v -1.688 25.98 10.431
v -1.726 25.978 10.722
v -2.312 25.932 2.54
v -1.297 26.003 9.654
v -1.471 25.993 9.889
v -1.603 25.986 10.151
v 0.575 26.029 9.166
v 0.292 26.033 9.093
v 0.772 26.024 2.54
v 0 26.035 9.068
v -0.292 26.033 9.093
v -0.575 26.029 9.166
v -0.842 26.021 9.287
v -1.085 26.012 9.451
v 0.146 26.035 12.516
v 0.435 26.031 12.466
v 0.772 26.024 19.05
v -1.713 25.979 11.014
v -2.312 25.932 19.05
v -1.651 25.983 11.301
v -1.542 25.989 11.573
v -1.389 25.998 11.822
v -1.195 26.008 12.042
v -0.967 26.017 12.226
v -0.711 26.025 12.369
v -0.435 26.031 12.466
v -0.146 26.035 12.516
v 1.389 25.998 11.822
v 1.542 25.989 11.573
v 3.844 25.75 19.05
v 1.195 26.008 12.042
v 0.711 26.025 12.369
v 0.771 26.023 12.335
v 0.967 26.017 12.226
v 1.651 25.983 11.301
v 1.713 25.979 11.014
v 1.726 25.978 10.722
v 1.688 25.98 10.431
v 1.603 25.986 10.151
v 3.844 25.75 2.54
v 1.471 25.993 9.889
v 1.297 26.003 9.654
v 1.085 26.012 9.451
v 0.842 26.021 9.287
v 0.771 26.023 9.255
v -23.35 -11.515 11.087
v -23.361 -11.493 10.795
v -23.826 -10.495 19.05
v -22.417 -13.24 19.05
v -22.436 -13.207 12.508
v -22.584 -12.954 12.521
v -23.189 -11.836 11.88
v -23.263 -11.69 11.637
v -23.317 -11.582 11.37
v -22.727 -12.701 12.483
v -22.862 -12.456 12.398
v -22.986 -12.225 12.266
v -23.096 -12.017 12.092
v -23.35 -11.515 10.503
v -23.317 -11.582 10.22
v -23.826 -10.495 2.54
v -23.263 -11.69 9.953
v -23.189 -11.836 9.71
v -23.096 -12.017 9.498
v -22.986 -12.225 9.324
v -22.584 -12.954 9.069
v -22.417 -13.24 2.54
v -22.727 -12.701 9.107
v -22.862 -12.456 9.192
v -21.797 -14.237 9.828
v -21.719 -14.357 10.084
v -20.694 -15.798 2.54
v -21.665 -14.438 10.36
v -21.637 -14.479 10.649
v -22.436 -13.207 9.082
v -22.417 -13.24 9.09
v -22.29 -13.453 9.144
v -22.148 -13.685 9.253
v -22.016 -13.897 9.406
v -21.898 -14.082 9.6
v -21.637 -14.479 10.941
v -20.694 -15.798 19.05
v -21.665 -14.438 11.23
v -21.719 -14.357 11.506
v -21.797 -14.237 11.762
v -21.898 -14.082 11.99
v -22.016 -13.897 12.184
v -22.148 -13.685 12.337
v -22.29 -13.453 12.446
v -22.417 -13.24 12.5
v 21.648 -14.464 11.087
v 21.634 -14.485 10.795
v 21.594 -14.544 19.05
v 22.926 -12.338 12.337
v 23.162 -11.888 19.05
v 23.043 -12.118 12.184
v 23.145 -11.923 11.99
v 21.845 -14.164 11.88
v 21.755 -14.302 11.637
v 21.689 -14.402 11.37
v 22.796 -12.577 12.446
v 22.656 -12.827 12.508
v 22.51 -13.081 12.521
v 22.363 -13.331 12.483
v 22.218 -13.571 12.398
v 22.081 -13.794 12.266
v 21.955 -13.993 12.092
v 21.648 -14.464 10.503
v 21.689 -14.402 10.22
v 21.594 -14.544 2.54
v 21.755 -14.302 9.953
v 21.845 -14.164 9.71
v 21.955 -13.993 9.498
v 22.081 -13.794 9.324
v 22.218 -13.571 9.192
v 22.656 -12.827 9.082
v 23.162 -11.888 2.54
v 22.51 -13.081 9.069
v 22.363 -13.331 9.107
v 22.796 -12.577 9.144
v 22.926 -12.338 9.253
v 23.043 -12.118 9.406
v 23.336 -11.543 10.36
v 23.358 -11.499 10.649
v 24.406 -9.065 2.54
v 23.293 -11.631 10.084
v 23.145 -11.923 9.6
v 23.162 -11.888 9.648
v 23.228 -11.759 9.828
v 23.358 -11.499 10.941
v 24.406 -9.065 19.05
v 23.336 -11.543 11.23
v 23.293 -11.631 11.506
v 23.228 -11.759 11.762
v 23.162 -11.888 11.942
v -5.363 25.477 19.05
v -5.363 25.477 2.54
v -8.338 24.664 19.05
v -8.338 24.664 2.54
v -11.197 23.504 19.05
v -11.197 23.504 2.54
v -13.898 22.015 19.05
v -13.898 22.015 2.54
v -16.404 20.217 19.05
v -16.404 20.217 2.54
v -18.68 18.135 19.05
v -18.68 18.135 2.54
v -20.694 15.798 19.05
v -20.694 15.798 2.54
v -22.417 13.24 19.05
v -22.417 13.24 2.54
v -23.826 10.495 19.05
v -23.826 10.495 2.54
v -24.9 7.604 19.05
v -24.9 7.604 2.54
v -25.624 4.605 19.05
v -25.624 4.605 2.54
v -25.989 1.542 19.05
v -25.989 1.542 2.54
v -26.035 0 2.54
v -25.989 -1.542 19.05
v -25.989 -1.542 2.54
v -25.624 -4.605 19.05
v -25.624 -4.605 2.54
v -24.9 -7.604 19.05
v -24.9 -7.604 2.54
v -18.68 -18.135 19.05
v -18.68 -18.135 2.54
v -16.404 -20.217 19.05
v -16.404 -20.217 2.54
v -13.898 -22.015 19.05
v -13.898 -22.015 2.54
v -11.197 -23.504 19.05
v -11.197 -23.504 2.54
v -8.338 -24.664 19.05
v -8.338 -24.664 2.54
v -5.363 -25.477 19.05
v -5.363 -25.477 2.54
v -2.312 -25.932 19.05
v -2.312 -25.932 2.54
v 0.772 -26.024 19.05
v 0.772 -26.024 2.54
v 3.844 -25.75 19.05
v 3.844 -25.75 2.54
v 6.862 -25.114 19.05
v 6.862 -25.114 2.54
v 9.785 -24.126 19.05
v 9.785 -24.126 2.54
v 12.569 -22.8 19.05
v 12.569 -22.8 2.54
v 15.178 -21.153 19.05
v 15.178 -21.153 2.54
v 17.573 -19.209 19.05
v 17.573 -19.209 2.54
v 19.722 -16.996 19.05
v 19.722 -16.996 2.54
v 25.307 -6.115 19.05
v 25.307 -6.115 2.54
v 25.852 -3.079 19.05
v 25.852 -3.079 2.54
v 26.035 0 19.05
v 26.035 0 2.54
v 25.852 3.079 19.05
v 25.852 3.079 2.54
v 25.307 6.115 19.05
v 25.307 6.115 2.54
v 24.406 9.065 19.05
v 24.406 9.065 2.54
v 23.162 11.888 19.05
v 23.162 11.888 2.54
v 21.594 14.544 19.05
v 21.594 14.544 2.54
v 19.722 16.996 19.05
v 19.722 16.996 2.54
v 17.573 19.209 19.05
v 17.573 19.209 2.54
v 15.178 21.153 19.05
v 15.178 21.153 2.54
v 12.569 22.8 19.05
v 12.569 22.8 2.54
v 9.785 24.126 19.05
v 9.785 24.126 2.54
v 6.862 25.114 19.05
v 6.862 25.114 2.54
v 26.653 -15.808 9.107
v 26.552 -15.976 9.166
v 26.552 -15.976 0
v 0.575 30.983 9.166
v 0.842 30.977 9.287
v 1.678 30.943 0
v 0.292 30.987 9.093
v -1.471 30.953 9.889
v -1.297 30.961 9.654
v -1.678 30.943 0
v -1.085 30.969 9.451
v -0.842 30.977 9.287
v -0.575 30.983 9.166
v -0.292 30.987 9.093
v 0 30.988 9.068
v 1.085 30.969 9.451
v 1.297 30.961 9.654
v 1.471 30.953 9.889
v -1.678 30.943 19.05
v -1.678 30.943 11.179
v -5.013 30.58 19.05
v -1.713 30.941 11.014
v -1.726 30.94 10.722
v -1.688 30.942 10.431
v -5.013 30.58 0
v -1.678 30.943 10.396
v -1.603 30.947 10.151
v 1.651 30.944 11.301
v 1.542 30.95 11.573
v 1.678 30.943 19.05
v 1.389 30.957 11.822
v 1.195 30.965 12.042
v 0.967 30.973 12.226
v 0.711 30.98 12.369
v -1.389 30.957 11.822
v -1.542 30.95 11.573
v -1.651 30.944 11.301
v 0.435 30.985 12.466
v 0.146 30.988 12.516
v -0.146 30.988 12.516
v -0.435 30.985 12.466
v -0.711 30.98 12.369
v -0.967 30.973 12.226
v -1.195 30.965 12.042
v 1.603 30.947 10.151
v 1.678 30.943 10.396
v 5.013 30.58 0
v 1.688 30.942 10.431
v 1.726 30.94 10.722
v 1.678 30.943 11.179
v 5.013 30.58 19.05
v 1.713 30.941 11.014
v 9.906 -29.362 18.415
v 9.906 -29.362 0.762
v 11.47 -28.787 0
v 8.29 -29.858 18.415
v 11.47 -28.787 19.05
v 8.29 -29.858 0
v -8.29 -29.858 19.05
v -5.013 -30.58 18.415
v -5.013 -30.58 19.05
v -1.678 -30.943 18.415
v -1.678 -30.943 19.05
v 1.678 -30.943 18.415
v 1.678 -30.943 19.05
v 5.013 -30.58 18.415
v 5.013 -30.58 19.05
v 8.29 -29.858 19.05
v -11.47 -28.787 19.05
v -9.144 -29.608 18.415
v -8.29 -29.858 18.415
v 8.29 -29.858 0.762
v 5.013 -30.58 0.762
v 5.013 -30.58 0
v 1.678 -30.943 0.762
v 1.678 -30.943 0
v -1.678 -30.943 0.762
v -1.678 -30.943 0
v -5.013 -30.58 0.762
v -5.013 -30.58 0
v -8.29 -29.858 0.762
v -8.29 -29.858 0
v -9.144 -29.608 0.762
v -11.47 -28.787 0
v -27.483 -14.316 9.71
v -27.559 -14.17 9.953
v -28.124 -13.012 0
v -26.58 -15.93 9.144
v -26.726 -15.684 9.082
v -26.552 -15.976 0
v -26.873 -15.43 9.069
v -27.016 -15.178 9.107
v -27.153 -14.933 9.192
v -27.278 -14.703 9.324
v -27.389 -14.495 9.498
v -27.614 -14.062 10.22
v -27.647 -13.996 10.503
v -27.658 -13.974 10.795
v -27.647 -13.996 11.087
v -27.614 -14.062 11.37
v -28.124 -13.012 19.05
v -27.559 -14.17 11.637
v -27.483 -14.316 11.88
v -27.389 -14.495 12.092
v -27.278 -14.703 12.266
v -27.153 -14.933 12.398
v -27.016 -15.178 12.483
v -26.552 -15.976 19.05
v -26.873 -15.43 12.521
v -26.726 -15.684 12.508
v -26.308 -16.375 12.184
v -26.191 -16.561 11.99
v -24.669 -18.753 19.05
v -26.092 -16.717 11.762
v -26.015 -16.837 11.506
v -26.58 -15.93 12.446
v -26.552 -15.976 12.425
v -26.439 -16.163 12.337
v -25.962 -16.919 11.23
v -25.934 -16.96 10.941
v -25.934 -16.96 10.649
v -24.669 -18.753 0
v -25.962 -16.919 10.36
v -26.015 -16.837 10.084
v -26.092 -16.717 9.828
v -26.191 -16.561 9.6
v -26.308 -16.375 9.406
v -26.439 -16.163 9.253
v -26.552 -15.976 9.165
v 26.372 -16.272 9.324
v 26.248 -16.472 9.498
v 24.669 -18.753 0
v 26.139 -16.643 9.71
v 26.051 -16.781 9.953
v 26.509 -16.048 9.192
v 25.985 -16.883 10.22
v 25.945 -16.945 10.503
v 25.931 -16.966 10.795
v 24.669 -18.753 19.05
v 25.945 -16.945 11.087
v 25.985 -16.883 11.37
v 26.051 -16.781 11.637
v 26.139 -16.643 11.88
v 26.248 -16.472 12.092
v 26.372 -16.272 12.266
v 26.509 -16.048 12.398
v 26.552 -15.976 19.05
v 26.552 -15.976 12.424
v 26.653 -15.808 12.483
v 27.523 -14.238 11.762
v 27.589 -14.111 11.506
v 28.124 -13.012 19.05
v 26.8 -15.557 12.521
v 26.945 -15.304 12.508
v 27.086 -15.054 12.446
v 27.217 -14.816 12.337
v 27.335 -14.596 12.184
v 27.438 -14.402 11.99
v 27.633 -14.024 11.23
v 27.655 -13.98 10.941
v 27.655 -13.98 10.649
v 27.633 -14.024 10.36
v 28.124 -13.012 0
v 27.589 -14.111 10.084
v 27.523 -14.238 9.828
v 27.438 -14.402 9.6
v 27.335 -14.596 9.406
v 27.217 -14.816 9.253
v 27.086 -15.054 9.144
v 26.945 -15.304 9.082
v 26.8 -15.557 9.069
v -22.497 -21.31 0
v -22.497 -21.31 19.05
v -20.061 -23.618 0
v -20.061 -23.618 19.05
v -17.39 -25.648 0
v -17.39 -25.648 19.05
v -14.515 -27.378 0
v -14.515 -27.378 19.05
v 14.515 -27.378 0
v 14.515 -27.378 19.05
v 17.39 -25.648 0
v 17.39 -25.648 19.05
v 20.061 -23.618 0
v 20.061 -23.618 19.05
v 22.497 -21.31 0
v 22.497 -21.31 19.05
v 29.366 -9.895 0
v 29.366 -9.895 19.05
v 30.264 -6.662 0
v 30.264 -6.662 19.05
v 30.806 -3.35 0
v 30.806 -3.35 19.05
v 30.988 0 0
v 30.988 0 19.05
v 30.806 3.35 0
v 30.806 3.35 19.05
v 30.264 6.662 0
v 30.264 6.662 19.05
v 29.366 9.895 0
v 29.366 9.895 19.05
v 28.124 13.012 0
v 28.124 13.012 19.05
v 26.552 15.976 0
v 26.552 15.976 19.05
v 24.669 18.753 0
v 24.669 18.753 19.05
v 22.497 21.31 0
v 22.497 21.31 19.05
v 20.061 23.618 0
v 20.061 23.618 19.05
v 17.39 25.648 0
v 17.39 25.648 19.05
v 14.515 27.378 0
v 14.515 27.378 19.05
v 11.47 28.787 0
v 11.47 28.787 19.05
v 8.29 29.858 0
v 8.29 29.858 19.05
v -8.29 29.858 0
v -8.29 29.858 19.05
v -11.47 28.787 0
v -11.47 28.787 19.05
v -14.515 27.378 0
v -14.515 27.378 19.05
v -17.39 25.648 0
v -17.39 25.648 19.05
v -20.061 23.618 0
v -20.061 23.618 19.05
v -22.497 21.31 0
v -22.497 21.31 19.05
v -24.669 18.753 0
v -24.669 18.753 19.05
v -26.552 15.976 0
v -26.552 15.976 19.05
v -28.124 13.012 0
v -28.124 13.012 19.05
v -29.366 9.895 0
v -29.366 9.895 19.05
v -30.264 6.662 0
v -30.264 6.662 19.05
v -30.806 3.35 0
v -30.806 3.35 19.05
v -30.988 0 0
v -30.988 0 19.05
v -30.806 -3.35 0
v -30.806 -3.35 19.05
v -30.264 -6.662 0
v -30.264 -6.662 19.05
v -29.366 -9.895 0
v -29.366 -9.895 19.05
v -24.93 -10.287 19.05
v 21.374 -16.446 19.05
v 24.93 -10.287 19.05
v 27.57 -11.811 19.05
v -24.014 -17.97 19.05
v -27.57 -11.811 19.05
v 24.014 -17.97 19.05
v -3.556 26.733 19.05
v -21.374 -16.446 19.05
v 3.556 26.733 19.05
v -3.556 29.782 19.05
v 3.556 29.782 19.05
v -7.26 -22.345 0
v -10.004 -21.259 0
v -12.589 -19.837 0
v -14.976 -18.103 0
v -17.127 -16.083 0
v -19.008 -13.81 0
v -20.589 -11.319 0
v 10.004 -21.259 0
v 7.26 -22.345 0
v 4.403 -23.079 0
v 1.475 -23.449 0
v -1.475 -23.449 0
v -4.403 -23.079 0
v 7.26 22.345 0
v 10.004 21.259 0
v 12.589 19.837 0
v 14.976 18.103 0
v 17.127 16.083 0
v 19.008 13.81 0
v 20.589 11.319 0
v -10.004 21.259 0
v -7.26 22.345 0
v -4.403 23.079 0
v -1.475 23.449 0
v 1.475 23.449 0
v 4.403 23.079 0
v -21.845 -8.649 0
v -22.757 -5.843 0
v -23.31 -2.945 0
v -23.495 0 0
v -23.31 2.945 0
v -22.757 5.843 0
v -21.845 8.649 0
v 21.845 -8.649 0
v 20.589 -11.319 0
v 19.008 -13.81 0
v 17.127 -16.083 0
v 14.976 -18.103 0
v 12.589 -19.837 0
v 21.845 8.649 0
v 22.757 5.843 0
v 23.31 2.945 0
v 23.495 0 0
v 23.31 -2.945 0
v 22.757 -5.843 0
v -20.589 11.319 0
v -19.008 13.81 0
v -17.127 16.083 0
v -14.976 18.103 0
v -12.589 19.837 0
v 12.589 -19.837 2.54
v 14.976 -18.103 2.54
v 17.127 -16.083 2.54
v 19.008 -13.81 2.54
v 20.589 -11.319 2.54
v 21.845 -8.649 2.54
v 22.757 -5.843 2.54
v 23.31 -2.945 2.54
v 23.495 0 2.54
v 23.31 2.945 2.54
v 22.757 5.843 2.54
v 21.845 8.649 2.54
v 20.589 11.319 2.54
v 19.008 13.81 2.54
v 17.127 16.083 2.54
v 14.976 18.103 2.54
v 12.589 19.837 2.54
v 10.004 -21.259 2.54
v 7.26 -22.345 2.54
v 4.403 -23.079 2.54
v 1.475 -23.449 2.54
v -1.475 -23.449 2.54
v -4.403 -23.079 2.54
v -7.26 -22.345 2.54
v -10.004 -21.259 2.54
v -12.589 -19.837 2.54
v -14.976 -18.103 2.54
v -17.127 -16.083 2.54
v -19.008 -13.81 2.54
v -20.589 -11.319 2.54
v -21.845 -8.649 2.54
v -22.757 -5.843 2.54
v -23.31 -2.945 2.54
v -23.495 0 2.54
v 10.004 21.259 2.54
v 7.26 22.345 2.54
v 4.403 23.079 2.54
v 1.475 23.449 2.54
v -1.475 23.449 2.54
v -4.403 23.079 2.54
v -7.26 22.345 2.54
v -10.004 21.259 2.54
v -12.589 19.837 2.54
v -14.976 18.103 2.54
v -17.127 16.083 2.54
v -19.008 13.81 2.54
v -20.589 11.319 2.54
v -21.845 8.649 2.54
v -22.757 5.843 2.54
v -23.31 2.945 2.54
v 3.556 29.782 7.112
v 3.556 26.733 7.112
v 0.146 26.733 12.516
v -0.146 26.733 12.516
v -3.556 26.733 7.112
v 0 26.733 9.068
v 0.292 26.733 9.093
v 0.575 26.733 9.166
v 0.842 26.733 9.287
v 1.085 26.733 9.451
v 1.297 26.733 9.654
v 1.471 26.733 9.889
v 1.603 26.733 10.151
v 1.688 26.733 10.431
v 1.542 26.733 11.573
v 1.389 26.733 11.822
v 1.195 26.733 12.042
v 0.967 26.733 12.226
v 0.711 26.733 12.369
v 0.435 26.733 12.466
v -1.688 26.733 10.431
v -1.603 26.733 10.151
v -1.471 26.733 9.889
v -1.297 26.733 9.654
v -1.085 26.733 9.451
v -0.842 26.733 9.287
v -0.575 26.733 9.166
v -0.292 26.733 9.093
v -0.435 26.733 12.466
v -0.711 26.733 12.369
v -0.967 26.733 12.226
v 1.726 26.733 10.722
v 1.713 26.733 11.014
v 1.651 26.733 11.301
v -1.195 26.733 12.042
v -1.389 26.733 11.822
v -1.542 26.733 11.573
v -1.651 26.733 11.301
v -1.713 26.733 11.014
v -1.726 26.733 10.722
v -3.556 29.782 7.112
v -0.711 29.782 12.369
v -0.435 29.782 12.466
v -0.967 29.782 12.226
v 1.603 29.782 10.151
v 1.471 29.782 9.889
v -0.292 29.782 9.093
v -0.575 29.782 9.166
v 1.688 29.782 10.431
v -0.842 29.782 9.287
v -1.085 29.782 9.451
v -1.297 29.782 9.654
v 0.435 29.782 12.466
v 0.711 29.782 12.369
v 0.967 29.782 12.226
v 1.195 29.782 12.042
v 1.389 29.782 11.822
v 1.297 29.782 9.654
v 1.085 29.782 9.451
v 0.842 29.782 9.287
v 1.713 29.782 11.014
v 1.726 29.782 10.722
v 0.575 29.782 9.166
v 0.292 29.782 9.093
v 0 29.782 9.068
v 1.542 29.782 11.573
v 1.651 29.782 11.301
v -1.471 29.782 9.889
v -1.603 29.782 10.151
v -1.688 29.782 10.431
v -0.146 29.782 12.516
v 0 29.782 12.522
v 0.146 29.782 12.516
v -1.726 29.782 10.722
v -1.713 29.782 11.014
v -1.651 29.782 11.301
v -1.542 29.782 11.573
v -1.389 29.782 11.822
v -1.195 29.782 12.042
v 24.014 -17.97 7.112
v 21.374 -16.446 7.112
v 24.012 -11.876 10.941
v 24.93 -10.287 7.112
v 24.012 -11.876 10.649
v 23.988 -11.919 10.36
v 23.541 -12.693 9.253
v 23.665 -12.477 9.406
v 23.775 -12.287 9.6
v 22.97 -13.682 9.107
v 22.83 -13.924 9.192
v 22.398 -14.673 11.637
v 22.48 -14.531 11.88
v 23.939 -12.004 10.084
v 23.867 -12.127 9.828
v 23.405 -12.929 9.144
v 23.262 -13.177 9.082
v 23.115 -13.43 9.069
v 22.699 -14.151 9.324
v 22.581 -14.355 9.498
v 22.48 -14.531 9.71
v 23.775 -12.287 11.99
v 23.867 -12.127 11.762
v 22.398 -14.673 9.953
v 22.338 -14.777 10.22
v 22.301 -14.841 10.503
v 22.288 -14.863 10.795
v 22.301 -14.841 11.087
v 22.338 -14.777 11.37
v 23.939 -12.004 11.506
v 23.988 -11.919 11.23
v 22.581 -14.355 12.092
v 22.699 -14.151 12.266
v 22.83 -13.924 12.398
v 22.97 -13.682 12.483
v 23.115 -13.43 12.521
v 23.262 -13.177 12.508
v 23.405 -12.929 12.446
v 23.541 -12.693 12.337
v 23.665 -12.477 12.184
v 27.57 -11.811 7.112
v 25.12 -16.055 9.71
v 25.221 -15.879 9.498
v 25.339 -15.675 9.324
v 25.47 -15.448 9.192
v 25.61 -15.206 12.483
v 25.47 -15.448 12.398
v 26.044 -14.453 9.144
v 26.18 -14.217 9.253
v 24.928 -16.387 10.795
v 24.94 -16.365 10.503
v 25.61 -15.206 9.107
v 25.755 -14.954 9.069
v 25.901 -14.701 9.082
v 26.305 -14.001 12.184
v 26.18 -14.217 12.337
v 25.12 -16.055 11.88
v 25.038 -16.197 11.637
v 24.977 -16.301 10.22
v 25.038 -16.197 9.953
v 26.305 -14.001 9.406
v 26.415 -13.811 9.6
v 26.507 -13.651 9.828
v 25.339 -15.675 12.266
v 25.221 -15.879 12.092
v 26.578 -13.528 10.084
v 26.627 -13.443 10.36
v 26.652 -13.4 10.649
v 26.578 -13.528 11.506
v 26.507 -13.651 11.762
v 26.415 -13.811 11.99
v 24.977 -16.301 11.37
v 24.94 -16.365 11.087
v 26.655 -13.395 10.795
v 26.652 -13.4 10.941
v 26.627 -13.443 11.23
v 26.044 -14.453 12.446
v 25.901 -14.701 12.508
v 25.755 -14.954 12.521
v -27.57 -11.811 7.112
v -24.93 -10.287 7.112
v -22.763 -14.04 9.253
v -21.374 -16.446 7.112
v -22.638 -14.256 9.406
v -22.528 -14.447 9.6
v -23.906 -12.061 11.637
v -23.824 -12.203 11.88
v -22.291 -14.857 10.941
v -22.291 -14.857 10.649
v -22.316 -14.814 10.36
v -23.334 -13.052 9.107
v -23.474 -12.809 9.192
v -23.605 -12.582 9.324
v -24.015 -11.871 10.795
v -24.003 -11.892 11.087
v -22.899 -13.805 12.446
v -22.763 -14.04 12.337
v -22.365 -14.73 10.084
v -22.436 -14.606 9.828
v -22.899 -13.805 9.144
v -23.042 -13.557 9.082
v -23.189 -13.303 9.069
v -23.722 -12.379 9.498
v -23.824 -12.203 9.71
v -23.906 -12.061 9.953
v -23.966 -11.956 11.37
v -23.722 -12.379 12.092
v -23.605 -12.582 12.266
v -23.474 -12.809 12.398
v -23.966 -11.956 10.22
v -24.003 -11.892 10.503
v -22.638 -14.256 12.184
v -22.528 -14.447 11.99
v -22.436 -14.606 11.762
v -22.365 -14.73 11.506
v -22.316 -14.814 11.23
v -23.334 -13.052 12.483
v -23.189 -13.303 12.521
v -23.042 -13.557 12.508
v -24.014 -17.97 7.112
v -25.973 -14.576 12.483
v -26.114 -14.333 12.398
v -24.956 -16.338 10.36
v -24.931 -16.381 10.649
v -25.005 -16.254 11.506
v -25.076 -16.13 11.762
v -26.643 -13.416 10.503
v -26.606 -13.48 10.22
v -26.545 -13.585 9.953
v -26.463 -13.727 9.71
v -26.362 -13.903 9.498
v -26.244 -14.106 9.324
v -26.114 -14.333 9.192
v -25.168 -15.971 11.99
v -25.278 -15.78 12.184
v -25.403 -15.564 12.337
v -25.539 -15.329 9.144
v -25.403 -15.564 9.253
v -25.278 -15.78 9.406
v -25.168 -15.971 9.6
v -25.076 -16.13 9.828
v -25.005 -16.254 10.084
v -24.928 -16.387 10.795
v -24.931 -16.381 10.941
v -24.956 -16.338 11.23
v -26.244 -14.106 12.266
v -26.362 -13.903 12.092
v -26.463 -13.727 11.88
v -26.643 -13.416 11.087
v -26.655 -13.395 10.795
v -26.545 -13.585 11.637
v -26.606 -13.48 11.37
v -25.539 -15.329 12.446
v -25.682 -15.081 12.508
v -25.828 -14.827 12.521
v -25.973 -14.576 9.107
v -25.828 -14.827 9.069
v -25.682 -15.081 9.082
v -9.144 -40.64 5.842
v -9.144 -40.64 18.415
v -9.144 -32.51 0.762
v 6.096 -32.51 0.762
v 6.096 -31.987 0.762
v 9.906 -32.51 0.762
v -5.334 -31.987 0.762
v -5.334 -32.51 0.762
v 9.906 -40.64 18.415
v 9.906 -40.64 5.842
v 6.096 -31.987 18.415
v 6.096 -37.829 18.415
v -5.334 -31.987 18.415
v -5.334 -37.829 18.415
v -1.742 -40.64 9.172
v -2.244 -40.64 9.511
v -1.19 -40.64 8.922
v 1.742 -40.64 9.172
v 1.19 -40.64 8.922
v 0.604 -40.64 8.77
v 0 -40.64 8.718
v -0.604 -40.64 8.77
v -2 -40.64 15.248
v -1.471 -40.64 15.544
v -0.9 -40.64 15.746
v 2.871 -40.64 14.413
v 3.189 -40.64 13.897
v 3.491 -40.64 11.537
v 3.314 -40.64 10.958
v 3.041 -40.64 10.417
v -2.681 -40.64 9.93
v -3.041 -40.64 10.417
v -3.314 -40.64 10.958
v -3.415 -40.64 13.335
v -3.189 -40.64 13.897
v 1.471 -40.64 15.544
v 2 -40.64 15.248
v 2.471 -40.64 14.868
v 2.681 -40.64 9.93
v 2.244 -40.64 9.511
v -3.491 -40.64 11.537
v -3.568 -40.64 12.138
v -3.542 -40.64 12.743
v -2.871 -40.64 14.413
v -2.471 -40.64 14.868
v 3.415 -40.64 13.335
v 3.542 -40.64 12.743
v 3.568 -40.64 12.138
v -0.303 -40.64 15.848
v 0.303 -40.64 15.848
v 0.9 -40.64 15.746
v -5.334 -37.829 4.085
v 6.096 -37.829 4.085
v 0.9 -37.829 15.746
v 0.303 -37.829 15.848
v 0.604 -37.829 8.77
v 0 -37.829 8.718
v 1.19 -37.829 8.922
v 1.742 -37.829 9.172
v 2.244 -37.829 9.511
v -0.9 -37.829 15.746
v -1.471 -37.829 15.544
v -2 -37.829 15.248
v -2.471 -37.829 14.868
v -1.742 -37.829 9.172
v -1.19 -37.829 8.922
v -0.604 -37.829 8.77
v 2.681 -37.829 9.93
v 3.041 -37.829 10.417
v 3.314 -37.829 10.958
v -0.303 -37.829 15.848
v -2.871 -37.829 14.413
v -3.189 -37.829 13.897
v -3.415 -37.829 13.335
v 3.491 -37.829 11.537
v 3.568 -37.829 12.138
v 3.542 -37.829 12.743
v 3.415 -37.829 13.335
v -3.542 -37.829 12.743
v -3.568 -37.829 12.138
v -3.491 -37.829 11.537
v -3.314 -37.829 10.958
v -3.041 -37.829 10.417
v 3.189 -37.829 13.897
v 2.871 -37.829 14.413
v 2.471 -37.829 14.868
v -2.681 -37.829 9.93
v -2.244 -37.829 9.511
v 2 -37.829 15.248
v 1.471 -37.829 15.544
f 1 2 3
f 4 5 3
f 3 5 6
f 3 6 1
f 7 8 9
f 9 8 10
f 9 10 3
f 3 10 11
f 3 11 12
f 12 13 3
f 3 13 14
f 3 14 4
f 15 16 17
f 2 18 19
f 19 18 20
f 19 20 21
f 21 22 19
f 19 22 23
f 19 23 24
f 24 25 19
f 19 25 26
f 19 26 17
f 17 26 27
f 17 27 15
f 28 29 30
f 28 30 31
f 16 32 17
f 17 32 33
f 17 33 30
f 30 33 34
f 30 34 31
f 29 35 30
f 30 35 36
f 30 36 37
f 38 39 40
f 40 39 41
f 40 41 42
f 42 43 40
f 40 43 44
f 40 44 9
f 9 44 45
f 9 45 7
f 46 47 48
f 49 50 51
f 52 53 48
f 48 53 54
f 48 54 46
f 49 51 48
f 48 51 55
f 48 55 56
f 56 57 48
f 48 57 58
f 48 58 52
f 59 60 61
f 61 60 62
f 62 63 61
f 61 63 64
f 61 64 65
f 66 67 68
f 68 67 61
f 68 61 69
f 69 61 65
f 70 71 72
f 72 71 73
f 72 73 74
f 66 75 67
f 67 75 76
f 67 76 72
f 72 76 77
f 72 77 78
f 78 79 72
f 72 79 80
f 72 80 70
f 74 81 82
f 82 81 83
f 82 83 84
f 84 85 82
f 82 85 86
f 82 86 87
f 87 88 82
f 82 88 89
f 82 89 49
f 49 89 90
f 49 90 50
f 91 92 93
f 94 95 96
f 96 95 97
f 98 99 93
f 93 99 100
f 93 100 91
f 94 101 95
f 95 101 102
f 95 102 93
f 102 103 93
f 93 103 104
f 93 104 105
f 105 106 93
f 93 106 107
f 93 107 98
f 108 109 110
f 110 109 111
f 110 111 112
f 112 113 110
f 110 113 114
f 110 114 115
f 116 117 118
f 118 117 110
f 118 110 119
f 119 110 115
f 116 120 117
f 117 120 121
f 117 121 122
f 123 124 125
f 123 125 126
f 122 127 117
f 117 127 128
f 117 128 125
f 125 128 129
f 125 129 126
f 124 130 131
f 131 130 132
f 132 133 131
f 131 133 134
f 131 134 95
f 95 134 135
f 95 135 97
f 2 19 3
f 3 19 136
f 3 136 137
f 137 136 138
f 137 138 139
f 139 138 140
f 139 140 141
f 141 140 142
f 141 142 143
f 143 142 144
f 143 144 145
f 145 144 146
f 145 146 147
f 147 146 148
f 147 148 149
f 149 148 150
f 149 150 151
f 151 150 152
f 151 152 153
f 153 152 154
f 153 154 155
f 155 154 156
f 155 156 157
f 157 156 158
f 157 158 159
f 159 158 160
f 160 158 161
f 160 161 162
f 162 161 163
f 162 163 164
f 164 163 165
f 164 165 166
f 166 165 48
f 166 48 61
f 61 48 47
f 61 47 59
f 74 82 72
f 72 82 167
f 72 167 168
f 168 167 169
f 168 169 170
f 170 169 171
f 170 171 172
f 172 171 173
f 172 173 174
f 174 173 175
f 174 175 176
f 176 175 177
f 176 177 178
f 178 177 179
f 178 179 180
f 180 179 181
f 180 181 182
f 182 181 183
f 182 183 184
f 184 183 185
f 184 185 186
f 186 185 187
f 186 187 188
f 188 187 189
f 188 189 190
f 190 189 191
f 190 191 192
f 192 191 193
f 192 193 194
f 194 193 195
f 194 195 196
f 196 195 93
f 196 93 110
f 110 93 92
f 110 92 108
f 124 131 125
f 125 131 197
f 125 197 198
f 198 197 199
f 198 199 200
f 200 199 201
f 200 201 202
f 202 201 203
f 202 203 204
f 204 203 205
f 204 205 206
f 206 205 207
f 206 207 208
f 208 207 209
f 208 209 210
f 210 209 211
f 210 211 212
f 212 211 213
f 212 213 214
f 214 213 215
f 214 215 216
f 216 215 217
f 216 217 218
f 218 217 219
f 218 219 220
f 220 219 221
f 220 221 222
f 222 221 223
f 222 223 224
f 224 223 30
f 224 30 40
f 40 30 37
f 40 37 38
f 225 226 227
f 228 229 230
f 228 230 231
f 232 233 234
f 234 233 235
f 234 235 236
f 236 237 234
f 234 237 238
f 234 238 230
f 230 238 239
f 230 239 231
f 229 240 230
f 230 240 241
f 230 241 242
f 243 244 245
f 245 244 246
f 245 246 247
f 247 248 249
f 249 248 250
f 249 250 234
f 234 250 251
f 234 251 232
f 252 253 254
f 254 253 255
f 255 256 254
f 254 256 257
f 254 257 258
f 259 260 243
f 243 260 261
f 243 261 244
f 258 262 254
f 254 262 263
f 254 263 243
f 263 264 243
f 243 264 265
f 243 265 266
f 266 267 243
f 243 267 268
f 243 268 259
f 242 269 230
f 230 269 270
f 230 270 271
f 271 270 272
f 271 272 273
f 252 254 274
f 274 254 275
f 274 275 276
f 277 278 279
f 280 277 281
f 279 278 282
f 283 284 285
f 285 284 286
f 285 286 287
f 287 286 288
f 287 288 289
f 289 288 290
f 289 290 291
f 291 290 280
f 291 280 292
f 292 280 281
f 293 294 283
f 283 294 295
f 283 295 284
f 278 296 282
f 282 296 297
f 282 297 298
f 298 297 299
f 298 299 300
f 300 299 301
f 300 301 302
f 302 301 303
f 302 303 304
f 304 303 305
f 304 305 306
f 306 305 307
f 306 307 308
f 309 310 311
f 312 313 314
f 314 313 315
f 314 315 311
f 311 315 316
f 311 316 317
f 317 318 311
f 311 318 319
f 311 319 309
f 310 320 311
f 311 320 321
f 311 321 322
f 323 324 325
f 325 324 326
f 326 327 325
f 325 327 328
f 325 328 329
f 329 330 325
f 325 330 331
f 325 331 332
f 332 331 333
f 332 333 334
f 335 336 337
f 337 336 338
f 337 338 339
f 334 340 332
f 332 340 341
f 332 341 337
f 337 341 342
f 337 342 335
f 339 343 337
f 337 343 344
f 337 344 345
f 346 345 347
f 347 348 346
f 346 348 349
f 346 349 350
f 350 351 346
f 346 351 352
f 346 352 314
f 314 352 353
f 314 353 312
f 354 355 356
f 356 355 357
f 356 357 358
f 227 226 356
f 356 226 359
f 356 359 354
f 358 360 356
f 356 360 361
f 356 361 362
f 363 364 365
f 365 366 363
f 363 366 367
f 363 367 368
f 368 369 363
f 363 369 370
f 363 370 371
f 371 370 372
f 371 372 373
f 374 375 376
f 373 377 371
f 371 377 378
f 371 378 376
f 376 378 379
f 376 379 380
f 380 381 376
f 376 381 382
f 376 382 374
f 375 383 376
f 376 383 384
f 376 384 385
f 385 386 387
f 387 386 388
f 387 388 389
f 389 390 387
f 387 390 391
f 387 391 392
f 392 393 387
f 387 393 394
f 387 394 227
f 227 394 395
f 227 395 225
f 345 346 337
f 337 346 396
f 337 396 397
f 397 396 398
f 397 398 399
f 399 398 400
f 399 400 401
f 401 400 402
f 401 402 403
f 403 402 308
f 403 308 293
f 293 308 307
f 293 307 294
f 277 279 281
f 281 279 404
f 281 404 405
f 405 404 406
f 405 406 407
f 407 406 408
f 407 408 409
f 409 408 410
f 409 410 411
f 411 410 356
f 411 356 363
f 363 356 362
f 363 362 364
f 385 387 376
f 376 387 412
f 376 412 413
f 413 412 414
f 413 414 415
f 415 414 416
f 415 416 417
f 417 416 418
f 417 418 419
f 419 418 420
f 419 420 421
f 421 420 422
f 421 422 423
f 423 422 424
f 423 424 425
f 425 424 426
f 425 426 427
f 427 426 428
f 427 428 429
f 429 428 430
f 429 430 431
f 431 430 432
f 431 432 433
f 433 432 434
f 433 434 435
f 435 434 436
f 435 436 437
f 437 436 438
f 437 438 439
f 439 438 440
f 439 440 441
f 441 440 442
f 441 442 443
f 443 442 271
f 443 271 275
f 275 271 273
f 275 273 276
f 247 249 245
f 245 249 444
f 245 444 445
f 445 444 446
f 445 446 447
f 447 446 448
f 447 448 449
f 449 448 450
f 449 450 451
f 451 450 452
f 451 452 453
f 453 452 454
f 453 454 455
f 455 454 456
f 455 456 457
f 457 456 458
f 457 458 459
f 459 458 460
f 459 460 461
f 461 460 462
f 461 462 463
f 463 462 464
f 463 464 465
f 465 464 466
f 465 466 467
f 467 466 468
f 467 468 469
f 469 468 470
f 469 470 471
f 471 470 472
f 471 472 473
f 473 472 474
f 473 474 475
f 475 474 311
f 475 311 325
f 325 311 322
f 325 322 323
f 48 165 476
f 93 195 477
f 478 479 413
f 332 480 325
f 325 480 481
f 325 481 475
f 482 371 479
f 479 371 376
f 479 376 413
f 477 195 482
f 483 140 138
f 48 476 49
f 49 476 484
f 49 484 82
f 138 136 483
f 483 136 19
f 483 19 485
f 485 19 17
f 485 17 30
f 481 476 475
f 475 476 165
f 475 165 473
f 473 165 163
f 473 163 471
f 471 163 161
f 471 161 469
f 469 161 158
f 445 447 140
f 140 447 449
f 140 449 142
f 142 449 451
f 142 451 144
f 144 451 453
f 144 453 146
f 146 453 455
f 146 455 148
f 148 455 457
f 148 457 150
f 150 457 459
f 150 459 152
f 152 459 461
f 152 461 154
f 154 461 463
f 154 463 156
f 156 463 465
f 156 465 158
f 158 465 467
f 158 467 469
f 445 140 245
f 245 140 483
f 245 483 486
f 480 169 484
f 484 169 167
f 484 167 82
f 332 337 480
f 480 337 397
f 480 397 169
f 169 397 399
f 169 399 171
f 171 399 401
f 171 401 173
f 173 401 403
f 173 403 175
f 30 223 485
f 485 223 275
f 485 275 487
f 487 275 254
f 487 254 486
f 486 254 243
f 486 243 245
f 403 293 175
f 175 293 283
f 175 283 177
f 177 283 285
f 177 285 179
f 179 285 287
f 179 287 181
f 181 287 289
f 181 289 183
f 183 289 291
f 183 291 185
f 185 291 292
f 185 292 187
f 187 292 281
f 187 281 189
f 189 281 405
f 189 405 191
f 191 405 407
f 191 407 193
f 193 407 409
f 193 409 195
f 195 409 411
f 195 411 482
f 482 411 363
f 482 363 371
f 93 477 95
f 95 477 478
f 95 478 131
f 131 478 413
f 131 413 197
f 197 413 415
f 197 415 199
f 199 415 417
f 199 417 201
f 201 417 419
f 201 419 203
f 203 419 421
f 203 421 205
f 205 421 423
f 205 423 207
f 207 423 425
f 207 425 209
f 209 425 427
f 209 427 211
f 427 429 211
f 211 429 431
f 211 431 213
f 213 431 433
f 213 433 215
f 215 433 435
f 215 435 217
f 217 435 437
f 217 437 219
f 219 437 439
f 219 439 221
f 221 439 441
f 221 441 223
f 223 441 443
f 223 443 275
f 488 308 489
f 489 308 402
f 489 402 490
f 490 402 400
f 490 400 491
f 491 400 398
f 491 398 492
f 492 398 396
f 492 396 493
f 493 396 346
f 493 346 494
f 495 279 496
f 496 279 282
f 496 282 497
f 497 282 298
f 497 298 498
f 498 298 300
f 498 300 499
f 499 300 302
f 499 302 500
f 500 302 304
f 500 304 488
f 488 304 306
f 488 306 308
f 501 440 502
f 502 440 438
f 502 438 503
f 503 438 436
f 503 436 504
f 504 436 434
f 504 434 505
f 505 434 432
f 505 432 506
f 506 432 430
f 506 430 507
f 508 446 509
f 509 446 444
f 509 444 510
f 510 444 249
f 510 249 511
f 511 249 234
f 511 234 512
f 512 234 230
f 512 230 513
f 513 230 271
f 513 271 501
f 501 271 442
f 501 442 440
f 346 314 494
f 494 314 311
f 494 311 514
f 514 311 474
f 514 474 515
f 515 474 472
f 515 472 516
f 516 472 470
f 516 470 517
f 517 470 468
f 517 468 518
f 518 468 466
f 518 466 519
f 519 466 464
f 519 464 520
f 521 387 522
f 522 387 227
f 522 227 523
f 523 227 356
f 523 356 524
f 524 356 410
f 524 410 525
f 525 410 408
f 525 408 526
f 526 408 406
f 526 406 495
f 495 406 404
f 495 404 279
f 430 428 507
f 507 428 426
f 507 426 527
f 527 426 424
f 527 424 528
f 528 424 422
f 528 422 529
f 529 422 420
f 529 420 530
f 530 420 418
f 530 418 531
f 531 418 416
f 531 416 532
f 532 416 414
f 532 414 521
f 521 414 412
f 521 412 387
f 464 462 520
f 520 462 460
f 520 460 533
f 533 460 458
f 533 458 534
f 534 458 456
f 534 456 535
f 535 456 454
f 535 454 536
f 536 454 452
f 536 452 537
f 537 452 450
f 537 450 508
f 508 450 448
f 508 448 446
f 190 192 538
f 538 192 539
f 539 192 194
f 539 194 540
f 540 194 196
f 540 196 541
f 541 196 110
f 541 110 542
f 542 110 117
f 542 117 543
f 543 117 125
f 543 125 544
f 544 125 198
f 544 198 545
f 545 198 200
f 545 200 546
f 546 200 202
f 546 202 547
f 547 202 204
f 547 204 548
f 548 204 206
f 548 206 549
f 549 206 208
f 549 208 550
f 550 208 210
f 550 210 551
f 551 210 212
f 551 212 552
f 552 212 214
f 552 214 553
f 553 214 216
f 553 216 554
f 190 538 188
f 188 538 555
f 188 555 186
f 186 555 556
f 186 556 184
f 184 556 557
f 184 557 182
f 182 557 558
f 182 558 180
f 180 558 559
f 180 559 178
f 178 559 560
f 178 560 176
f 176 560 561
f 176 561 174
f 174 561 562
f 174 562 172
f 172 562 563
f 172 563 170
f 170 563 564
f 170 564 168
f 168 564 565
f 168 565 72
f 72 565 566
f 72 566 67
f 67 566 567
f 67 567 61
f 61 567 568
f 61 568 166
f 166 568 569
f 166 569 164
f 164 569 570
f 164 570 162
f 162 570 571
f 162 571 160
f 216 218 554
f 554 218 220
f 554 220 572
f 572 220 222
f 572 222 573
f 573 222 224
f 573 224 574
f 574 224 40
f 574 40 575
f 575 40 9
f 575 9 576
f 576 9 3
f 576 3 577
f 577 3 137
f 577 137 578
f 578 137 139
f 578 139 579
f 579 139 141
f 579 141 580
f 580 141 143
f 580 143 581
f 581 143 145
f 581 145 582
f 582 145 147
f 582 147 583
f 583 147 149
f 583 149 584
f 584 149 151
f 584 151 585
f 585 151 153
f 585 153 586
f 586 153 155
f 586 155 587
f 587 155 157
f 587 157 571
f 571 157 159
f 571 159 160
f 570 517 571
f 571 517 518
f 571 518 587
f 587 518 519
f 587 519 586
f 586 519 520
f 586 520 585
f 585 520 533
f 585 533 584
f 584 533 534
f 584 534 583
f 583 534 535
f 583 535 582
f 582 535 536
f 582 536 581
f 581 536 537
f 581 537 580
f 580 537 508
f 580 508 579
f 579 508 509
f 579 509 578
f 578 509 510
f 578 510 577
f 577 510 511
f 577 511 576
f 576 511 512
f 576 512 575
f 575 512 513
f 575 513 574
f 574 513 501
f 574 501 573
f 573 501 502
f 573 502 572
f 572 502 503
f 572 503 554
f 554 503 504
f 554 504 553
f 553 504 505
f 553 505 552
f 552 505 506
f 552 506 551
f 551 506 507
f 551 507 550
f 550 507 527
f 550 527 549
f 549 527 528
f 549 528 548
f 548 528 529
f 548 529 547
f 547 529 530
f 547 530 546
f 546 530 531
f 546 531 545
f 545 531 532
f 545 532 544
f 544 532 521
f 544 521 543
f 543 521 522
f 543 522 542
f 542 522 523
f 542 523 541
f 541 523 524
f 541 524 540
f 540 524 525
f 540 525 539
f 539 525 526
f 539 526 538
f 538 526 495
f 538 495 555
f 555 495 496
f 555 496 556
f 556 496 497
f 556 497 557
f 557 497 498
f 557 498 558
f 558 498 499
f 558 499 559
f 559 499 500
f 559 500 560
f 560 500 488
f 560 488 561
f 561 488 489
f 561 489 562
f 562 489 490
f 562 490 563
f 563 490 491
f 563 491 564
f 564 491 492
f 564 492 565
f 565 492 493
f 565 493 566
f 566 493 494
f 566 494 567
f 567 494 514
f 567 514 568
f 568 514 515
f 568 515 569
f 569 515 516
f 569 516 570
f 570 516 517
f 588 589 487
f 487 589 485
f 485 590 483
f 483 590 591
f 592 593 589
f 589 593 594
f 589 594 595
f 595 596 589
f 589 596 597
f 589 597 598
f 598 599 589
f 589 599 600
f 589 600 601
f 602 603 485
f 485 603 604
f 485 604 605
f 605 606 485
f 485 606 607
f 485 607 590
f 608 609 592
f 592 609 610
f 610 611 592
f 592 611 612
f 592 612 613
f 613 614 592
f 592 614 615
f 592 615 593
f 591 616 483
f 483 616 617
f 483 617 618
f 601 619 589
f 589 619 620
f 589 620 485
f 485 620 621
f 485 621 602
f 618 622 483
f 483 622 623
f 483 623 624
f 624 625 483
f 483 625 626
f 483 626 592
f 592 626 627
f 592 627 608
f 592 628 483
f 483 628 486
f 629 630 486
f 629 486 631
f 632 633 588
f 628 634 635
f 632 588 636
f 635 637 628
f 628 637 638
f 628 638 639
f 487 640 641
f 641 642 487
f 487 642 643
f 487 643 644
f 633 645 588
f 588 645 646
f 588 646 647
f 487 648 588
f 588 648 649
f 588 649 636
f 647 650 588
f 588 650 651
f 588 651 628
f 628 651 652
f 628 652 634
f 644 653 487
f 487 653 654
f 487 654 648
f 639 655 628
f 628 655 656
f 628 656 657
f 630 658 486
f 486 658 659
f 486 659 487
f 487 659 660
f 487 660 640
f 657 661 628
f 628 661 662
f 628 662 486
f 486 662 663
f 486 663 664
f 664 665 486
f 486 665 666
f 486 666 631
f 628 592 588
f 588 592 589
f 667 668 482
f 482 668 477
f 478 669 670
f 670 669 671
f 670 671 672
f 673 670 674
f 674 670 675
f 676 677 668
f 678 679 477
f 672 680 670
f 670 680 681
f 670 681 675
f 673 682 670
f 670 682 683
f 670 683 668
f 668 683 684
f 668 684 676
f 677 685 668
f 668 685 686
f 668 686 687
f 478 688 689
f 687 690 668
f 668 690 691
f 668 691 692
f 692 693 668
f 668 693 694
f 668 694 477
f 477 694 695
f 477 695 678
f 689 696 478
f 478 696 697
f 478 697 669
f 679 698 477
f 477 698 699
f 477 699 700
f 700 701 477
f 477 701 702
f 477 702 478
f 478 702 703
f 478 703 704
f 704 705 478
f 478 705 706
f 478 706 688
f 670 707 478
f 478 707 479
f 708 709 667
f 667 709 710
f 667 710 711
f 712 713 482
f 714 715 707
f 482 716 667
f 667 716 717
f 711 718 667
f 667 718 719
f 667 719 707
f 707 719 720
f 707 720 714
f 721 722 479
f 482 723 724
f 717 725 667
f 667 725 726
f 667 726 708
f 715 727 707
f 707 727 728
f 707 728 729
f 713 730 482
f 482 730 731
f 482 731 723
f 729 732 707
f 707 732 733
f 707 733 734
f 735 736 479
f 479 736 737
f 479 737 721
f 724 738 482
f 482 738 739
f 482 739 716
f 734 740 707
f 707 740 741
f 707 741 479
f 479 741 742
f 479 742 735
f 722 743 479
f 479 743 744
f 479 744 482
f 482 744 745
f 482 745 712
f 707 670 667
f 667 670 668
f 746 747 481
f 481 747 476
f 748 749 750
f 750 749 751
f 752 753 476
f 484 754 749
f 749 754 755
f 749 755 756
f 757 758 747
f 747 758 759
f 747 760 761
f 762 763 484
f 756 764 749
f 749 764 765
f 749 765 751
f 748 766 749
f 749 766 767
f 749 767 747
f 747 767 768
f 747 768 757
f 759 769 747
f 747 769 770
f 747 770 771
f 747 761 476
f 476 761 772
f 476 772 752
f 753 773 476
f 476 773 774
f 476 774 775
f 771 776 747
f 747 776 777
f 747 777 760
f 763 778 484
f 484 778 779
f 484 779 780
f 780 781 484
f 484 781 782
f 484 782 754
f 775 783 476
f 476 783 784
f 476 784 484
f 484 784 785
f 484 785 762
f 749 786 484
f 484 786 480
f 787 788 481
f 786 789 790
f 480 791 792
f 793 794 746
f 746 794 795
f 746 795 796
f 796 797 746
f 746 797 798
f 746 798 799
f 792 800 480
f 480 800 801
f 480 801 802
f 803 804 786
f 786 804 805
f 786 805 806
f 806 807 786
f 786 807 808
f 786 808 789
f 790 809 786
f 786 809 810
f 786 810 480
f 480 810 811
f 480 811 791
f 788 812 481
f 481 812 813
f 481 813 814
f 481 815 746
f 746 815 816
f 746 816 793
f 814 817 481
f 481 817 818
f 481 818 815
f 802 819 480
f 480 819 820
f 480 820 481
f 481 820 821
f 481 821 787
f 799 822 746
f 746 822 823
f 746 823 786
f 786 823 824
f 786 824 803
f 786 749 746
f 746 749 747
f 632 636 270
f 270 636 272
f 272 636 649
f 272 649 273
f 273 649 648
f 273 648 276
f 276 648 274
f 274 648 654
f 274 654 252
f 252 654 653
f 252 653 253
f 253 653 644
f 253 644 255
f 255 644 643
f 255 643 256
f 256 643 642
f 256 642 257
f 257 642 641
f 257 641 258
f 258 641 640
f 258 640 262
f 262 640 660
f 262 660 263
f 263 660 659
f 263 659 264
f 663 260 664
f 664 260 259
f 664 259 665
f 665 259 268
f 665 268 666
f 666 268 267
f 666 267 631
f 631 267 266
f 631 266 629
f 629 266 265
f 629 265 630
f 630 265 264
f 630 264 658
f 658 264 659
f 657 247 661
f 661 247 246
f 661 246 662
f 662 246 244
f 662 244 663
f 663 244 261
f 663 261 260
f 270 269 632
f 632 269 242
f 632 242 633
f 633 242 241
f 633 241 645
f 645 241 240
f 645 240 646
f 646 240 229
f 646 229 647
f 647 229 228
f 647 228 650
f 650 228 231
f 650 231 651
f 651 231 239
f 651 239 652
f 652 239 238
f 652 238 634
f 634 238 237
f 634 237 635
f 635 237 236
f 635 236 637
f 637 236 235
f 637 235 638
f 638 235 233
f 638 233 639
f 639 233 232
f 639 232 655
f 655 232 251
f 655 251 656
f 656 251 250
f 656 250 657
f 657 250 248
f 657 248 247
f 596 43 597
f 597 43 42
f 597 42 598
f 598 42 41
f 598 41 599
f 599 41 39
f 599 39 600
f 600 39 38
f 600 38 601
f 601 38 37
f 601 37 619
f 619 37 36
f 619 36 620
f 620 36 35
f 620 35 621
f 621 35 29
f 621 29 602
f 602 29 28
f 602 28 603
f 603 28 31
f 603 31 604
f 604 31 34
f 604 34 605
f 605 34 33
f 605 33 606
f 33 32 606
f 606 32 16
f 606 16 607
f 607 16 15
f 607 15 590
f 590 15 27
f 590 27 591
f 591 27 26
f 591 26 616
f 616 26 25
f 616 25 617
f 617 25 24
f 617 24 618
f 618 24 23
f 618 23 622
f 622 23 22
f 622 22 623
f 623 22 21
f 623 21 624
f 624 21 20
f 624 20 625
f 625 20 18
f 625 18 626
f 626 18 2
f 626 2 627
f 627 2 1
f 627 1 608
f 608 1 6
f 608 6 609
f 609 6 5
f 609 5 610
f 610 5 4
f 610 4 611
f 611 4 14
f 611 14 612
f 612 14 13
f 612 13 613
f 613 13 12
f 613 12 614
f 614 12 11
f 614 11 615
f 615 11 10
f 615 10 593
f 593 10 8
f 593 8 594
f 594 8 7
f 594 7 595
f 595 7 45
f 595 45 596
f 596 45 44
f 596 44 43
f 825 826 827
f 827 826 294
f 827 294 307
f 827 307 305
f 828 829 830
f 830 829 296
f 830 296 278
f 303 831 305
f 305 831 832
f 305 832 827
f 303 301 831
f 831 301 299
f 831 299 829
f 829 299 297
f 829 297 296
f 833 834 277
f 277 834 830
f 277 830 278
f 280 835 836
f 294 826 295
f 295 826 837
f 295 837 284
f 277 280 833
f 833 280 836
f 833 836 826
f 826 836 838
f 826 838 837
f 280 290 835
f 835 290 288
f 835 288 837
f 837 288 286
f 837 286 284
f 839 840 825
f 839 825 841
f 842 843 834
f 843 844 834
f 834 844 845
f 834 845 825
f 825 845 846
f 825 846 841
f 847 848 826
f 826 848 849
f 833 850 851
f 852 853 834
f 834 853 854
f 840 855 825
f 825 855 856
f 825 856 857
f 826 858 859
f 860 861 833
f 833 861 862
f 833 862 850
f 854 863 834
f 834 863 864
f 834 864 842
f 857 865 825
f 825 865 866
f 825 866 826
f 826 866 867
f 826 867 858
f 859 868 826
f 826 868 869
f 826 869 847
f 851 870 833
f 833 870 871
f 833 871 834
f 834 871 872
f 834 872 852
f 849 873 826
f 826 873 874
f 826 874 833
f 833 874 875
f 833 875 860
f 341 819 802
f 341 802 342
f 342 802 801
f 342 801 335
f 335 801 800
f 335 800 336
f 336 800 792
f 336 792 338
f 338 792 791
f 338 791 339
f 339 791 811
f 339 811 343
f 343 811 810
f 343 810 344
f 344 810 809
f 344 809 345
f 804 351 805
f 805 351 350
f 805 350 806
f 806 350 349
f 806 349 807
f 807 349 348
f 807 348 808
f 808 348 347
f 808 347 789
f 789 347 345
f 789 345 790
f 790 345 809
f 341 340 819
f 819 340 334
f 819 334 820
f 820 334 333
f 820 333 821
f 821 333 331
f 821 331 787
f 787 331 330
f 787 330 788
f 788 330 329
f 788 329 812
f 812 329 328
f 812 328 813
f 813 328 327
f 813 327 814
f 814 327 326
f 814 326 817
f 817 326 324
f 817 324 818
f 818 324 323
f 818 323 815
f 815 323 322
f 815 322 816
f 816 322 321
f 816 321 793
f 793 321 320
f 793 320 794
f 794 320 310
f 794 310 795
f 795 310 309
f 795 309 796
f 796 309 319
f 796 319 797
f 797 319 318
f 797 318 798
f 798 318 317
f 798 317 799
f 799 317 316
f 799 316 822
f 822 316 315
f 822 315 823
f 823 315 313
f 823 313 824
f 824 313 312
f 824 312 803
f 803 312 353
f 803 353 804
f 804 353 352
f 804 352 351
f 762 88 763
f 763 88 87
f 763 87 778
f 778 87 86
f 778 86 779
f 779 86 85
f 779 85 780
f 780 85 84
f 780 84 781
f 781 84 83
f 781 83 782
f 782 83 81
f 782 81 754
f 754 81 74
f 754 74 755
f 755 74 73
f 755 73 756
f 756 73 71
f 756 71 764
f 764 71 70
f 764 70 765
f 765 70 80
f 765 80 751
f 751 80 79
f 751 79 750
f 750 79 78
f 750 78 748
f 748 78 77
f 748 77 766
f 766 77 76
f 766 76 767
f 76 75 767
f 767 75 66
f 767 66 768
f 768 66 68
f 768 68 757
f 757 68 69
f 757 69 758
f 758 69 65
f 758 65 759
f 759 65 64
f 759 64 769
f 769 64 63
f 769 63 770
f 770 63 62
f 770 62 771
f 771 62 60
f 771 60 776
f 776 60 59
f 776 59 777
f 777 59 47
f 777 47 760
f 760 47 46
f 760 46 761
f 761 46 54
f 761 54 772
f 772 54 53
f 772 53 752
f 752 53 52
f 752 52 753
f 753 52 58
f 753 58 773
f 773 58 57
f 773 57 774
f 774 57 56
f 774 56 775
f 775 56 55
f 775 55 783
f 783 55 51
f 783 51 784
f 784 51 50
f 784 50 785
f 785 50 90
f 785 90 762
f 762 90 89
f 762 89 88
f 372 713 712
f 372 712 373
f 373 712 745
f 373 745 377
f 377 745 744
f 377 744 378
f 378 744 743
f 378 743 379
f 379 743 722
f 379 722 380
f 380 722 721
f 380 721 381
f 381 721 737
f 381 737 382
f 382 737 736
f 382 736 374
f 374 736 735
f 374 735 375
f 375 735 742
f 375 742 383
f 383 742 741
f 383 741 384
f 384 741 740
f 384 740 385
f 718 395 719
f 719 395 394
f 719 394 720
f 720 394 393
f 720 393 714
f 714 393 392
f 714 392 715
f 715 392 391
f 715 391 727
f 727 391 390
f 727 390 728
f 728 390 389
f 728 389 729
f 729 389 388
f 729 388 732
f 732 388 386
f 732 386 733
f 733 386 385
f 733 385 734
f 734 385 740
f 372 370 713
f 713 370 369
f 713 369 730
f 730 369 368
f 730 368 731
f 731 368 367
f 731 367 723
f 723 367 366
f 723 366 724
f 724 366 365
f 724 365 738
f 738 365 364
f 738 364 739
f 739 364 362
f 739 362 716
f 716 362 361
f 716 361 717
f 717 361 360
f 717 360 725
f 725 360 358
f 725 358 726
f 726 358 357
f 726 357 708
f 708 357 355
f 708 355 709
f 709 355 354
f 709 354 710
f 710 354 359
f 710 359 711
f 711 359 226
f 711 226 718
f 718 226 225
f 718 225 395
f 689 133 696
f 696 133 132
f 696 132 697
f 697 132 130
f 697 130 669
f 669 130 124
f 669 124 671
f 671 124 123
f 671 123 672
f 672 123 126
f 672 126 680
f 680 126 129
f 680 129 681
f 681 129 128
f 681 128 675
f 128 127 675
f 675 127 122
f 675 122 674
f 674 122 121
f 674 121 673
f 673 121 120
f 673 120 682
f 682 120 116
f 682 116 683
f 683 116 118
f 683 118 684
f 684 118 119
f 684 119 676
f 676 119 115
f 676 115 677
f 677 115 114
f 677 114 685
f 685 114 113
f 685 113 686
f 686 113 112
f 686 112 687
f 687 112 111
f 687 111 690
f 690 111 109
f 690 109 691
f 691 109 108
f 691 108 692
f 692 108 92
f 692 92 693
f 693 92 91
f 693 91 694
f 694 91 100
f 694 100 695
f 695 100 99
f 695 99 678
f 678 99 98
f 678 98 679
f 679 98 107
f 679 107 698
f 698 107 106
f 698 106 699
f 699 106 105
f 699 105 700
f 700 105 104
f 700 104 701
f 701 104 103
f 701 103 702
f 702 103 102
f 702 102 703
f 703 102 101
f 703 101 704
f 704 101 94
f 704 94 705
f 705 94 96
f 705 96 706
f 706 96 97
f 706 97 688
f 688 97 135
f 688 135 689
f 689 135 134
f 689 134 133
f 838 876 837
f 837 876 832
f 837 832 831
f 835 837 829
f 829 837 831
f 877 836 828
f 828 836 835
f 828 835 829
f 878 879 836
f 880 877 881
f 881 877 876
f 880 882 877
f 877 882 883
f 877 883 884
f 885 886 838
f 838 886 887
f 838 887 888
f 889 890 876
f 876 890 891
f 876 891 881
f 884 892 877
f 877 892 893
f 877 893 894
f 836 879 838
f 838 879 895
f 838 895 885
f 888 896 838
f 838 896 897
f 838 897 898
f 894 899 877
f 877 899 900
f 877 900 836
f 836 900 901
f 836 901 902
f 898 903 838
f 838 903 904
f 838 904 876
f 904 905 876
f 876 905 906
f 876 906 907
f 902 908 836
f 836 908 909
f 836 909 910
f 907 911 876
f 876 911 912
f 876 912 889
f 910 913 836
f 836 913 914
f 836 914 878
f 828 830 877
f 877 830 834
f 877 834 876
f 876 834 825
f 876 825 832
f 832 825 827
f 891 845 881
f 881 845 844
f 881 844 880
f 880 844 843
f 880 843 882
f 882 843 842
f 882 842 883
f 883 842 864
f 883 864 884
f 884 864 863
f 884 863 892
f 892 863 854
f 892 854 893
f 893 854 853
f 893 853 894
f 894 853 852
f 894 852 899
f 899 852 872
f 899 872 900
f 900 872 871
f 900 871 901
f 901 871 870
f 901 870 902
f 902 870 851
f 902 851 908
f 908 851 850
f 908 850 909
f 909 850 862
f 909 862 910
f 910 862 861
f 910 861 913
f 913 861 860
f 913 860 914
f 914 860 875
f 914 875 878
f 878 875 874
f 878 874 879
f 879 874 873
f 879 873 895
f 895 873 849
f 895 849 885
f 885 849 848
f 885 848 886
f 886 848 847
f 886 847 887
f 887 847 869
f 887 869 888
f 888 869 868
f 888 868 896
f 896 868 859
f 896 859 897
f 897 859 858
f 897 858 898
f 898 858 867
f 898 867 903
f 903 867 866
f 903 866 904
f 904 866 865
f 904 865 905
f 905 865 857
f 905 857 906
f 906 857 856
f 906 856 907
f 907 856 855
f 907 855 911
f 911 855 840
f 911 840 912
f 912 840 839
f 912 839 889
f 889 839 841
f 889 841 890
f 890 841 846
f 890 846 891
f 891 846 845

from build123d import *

# Parameters (mm, degrees)
SKETCH1_R                   = 30.988
BOSS_EXTRUDE1_DEPTH         = 19.05
SKETCH2_R                   = 26.035
CUT_EXTRUDE1_DEPTH          = 48.785089599
BOSS_EXTRUDE2_START         = -2.54
SKETCH4_R                   = 26.035
SKETCH4_R_2                 = 23.495
BOSS_EXTRUDE2_DEPTH         = 2.54
SKETCH11_W                  = 7.112
SKETCH11_H                  = 3.048
CUT_EXTRUDE3_DEPTH          = 11.938
CIRPATTERN2_COUNT           = 3
F_4_CLEARANCE_HOLE1_D       = 3.4544
F_4_CLEARANCE_HOLE1_DEPTH   = 34.456395212
SKETCH15_W                  = 19.05
SKETCH15_H                  = 17.653
BOSS_EXTRUDE3_DEPTH         = 12.7
CIRPATTERN3_COUNT           = 3
SKETCH16_W                  = 11.43
SKETCH16_H                  = 5.842
CUT_EXTRUDE4_DEPTH          = 55.322904735
CHAMFER2_SIZE               = 8.129699408
CHAMFER2_SIZE_2             = 5.08
F_1_4_CLEARANCE_HOLE1_D     = 7.14248
F_1_4_CLEARANCE_HOLE1_DEPTH = 2.811307748


with BuildPart() as part:
    # Sketch1 → Boss-Extrude1 (new body)
    with BuildSketch(Plane.XY):
        with Locations(Location((0, 0, 0), (0, 0, 180))):
            Circle(SKETCH1_R)
    extrude(amount=BOSS_EXTRUDE1_DEPTH)

    # Sketch2 → Cut-Extrude1 (cut, through all)
    with BuildSketch(Plane.XY.offset(19.05)):
        Circle(SKETCH2_R)
    extrude(amount=-CUT_EXTRUDE1_DEPTH, mode=Mode.SUBTRACT)

    # Sketch4 → Boss-Extrude2 (add)
    with BuildSketch(Plane(origin=(0, 0, 0), x_dir=(-1, 0, 0), z_dir=(0, 0, -1)).offset(BOSS_EXTRUDE2_START)):
        with Locations(Location((0, 0, 0), (0, 0, 180))):
            Circle(SKETCH4_R)
        Circle(SKETCH4_R_2, mode=Mode.SUBTRACT)
    extrude(amount=BOSS_EXTRUDE2_DEPTH)

    # Sketch11 → Cut-Extrude3 (cut)
    with BuildSketch(Plane.XY.offset(19.05)):
        with Locations((0, 28.2575)):
            Rectangle(SKETCH11_W, SKETCH11_H)
    cut_extrude3 = extrude(amount=-CUT_EXTRUDE3_DEPTH, mode=Mode.SUBTRACT)

    # CirPattern2: Cut-Extrude3 ×3 about axis
    cirpattern2_axis = Axis((0, 0, 0), (0, 0, 1))
    for i in range(1, CIRPATTERN2_COUNT):
        add(cut_extrude3.rotate(cirpattern2_axis, i * 360 / CIRPATTERN2_COUNT), mode=Mode.SUBTRACT)

    # #4 Clearance Hole1
    with Locations(Plane.XZ.offset(-12.7)):
        with Locations((0, 10.795)):
            f_4_clearance_hole1 = Hole(F_4_CLEARANCE_HOLE1_D / 2, depth=F_4_CLEARANCE_HOLE1_DEPTH)

    # Sketch15 → Boss-Extrude3 (add)
    with BuildSketch(Plane(origin=(0, -27.94, 0), x_dir=(1, 0, 0), z_dir=(0, 1, 0))):
        with Locations((0.381, -9.5885)):
            Rectangle(SKETCH15_W, SKETCH15_H)
    extrude(amount=-BOSS_EXTRUDE3_DEPTH)

    # CirPattern3: #4 Clearance Hole1 ×3 about axis
    cirpattern3_axis = Axis((0, 0, 19.05), (0, 0, 1))
    for i in range(1, CIRPATTERN3_COUNT):
        add(f_4_clearance_hole1.rotate(cirpattern3_axis, i * 360 / CIRPATTERN3_COUNT), mode=Mode.SUBTRACT)

    # Sketch16 → Cut-Extrude4 (cut, through all)
    with BuildSketch(Plane.XY.offset(18.415)):
        with Locations((0.381, -34.907692252)):
            Rectangle(SKETCH16_W, SKETCH16_H)
    extrude(amount=-CUT_EXTRUDE4_DEPTH, mode=Mode.SUBTRACT)

    # Chamfer2
    # the kernel refuses this chamfer: 8.129699408, 5.08 mm, written as the material it takes off along each edge
    with BuildSketch(Plane(origin=(-30.162101737, -40.64, 0.762), x_dir=(0, 0.9997899140358644, -0.020497019104217945), z_dir=(1, 0, 0))) as chamfer2_piece_1:
        Polygon((CHAMFER2_SIZE * 0.999789913978, CHAMFER2_SIZE * 0.020497019103), (-CHAMFER2_SIZE_2 * 0.0204970191042, CHAMFER2_SIZE_2 * 0.999789914036), (0, 0), align=None)
    extrude(amount=61.086203475, mode=Mode.SUBTRACT)

    # 1/4 Clearance Hole1
    with Locations(Plane(origin=(0, -40.64, 0), x_dir=(-1, 0, 0), z_dir=(0, -1, 0))):
        with Locations((0, -12.289529053)):
            Hole(F_1_4_CLEARANCE_HOLE1_D / 2, depth=F_1_4_CLEARANCE_HOLE1_DEPTH)


solid = part.part
